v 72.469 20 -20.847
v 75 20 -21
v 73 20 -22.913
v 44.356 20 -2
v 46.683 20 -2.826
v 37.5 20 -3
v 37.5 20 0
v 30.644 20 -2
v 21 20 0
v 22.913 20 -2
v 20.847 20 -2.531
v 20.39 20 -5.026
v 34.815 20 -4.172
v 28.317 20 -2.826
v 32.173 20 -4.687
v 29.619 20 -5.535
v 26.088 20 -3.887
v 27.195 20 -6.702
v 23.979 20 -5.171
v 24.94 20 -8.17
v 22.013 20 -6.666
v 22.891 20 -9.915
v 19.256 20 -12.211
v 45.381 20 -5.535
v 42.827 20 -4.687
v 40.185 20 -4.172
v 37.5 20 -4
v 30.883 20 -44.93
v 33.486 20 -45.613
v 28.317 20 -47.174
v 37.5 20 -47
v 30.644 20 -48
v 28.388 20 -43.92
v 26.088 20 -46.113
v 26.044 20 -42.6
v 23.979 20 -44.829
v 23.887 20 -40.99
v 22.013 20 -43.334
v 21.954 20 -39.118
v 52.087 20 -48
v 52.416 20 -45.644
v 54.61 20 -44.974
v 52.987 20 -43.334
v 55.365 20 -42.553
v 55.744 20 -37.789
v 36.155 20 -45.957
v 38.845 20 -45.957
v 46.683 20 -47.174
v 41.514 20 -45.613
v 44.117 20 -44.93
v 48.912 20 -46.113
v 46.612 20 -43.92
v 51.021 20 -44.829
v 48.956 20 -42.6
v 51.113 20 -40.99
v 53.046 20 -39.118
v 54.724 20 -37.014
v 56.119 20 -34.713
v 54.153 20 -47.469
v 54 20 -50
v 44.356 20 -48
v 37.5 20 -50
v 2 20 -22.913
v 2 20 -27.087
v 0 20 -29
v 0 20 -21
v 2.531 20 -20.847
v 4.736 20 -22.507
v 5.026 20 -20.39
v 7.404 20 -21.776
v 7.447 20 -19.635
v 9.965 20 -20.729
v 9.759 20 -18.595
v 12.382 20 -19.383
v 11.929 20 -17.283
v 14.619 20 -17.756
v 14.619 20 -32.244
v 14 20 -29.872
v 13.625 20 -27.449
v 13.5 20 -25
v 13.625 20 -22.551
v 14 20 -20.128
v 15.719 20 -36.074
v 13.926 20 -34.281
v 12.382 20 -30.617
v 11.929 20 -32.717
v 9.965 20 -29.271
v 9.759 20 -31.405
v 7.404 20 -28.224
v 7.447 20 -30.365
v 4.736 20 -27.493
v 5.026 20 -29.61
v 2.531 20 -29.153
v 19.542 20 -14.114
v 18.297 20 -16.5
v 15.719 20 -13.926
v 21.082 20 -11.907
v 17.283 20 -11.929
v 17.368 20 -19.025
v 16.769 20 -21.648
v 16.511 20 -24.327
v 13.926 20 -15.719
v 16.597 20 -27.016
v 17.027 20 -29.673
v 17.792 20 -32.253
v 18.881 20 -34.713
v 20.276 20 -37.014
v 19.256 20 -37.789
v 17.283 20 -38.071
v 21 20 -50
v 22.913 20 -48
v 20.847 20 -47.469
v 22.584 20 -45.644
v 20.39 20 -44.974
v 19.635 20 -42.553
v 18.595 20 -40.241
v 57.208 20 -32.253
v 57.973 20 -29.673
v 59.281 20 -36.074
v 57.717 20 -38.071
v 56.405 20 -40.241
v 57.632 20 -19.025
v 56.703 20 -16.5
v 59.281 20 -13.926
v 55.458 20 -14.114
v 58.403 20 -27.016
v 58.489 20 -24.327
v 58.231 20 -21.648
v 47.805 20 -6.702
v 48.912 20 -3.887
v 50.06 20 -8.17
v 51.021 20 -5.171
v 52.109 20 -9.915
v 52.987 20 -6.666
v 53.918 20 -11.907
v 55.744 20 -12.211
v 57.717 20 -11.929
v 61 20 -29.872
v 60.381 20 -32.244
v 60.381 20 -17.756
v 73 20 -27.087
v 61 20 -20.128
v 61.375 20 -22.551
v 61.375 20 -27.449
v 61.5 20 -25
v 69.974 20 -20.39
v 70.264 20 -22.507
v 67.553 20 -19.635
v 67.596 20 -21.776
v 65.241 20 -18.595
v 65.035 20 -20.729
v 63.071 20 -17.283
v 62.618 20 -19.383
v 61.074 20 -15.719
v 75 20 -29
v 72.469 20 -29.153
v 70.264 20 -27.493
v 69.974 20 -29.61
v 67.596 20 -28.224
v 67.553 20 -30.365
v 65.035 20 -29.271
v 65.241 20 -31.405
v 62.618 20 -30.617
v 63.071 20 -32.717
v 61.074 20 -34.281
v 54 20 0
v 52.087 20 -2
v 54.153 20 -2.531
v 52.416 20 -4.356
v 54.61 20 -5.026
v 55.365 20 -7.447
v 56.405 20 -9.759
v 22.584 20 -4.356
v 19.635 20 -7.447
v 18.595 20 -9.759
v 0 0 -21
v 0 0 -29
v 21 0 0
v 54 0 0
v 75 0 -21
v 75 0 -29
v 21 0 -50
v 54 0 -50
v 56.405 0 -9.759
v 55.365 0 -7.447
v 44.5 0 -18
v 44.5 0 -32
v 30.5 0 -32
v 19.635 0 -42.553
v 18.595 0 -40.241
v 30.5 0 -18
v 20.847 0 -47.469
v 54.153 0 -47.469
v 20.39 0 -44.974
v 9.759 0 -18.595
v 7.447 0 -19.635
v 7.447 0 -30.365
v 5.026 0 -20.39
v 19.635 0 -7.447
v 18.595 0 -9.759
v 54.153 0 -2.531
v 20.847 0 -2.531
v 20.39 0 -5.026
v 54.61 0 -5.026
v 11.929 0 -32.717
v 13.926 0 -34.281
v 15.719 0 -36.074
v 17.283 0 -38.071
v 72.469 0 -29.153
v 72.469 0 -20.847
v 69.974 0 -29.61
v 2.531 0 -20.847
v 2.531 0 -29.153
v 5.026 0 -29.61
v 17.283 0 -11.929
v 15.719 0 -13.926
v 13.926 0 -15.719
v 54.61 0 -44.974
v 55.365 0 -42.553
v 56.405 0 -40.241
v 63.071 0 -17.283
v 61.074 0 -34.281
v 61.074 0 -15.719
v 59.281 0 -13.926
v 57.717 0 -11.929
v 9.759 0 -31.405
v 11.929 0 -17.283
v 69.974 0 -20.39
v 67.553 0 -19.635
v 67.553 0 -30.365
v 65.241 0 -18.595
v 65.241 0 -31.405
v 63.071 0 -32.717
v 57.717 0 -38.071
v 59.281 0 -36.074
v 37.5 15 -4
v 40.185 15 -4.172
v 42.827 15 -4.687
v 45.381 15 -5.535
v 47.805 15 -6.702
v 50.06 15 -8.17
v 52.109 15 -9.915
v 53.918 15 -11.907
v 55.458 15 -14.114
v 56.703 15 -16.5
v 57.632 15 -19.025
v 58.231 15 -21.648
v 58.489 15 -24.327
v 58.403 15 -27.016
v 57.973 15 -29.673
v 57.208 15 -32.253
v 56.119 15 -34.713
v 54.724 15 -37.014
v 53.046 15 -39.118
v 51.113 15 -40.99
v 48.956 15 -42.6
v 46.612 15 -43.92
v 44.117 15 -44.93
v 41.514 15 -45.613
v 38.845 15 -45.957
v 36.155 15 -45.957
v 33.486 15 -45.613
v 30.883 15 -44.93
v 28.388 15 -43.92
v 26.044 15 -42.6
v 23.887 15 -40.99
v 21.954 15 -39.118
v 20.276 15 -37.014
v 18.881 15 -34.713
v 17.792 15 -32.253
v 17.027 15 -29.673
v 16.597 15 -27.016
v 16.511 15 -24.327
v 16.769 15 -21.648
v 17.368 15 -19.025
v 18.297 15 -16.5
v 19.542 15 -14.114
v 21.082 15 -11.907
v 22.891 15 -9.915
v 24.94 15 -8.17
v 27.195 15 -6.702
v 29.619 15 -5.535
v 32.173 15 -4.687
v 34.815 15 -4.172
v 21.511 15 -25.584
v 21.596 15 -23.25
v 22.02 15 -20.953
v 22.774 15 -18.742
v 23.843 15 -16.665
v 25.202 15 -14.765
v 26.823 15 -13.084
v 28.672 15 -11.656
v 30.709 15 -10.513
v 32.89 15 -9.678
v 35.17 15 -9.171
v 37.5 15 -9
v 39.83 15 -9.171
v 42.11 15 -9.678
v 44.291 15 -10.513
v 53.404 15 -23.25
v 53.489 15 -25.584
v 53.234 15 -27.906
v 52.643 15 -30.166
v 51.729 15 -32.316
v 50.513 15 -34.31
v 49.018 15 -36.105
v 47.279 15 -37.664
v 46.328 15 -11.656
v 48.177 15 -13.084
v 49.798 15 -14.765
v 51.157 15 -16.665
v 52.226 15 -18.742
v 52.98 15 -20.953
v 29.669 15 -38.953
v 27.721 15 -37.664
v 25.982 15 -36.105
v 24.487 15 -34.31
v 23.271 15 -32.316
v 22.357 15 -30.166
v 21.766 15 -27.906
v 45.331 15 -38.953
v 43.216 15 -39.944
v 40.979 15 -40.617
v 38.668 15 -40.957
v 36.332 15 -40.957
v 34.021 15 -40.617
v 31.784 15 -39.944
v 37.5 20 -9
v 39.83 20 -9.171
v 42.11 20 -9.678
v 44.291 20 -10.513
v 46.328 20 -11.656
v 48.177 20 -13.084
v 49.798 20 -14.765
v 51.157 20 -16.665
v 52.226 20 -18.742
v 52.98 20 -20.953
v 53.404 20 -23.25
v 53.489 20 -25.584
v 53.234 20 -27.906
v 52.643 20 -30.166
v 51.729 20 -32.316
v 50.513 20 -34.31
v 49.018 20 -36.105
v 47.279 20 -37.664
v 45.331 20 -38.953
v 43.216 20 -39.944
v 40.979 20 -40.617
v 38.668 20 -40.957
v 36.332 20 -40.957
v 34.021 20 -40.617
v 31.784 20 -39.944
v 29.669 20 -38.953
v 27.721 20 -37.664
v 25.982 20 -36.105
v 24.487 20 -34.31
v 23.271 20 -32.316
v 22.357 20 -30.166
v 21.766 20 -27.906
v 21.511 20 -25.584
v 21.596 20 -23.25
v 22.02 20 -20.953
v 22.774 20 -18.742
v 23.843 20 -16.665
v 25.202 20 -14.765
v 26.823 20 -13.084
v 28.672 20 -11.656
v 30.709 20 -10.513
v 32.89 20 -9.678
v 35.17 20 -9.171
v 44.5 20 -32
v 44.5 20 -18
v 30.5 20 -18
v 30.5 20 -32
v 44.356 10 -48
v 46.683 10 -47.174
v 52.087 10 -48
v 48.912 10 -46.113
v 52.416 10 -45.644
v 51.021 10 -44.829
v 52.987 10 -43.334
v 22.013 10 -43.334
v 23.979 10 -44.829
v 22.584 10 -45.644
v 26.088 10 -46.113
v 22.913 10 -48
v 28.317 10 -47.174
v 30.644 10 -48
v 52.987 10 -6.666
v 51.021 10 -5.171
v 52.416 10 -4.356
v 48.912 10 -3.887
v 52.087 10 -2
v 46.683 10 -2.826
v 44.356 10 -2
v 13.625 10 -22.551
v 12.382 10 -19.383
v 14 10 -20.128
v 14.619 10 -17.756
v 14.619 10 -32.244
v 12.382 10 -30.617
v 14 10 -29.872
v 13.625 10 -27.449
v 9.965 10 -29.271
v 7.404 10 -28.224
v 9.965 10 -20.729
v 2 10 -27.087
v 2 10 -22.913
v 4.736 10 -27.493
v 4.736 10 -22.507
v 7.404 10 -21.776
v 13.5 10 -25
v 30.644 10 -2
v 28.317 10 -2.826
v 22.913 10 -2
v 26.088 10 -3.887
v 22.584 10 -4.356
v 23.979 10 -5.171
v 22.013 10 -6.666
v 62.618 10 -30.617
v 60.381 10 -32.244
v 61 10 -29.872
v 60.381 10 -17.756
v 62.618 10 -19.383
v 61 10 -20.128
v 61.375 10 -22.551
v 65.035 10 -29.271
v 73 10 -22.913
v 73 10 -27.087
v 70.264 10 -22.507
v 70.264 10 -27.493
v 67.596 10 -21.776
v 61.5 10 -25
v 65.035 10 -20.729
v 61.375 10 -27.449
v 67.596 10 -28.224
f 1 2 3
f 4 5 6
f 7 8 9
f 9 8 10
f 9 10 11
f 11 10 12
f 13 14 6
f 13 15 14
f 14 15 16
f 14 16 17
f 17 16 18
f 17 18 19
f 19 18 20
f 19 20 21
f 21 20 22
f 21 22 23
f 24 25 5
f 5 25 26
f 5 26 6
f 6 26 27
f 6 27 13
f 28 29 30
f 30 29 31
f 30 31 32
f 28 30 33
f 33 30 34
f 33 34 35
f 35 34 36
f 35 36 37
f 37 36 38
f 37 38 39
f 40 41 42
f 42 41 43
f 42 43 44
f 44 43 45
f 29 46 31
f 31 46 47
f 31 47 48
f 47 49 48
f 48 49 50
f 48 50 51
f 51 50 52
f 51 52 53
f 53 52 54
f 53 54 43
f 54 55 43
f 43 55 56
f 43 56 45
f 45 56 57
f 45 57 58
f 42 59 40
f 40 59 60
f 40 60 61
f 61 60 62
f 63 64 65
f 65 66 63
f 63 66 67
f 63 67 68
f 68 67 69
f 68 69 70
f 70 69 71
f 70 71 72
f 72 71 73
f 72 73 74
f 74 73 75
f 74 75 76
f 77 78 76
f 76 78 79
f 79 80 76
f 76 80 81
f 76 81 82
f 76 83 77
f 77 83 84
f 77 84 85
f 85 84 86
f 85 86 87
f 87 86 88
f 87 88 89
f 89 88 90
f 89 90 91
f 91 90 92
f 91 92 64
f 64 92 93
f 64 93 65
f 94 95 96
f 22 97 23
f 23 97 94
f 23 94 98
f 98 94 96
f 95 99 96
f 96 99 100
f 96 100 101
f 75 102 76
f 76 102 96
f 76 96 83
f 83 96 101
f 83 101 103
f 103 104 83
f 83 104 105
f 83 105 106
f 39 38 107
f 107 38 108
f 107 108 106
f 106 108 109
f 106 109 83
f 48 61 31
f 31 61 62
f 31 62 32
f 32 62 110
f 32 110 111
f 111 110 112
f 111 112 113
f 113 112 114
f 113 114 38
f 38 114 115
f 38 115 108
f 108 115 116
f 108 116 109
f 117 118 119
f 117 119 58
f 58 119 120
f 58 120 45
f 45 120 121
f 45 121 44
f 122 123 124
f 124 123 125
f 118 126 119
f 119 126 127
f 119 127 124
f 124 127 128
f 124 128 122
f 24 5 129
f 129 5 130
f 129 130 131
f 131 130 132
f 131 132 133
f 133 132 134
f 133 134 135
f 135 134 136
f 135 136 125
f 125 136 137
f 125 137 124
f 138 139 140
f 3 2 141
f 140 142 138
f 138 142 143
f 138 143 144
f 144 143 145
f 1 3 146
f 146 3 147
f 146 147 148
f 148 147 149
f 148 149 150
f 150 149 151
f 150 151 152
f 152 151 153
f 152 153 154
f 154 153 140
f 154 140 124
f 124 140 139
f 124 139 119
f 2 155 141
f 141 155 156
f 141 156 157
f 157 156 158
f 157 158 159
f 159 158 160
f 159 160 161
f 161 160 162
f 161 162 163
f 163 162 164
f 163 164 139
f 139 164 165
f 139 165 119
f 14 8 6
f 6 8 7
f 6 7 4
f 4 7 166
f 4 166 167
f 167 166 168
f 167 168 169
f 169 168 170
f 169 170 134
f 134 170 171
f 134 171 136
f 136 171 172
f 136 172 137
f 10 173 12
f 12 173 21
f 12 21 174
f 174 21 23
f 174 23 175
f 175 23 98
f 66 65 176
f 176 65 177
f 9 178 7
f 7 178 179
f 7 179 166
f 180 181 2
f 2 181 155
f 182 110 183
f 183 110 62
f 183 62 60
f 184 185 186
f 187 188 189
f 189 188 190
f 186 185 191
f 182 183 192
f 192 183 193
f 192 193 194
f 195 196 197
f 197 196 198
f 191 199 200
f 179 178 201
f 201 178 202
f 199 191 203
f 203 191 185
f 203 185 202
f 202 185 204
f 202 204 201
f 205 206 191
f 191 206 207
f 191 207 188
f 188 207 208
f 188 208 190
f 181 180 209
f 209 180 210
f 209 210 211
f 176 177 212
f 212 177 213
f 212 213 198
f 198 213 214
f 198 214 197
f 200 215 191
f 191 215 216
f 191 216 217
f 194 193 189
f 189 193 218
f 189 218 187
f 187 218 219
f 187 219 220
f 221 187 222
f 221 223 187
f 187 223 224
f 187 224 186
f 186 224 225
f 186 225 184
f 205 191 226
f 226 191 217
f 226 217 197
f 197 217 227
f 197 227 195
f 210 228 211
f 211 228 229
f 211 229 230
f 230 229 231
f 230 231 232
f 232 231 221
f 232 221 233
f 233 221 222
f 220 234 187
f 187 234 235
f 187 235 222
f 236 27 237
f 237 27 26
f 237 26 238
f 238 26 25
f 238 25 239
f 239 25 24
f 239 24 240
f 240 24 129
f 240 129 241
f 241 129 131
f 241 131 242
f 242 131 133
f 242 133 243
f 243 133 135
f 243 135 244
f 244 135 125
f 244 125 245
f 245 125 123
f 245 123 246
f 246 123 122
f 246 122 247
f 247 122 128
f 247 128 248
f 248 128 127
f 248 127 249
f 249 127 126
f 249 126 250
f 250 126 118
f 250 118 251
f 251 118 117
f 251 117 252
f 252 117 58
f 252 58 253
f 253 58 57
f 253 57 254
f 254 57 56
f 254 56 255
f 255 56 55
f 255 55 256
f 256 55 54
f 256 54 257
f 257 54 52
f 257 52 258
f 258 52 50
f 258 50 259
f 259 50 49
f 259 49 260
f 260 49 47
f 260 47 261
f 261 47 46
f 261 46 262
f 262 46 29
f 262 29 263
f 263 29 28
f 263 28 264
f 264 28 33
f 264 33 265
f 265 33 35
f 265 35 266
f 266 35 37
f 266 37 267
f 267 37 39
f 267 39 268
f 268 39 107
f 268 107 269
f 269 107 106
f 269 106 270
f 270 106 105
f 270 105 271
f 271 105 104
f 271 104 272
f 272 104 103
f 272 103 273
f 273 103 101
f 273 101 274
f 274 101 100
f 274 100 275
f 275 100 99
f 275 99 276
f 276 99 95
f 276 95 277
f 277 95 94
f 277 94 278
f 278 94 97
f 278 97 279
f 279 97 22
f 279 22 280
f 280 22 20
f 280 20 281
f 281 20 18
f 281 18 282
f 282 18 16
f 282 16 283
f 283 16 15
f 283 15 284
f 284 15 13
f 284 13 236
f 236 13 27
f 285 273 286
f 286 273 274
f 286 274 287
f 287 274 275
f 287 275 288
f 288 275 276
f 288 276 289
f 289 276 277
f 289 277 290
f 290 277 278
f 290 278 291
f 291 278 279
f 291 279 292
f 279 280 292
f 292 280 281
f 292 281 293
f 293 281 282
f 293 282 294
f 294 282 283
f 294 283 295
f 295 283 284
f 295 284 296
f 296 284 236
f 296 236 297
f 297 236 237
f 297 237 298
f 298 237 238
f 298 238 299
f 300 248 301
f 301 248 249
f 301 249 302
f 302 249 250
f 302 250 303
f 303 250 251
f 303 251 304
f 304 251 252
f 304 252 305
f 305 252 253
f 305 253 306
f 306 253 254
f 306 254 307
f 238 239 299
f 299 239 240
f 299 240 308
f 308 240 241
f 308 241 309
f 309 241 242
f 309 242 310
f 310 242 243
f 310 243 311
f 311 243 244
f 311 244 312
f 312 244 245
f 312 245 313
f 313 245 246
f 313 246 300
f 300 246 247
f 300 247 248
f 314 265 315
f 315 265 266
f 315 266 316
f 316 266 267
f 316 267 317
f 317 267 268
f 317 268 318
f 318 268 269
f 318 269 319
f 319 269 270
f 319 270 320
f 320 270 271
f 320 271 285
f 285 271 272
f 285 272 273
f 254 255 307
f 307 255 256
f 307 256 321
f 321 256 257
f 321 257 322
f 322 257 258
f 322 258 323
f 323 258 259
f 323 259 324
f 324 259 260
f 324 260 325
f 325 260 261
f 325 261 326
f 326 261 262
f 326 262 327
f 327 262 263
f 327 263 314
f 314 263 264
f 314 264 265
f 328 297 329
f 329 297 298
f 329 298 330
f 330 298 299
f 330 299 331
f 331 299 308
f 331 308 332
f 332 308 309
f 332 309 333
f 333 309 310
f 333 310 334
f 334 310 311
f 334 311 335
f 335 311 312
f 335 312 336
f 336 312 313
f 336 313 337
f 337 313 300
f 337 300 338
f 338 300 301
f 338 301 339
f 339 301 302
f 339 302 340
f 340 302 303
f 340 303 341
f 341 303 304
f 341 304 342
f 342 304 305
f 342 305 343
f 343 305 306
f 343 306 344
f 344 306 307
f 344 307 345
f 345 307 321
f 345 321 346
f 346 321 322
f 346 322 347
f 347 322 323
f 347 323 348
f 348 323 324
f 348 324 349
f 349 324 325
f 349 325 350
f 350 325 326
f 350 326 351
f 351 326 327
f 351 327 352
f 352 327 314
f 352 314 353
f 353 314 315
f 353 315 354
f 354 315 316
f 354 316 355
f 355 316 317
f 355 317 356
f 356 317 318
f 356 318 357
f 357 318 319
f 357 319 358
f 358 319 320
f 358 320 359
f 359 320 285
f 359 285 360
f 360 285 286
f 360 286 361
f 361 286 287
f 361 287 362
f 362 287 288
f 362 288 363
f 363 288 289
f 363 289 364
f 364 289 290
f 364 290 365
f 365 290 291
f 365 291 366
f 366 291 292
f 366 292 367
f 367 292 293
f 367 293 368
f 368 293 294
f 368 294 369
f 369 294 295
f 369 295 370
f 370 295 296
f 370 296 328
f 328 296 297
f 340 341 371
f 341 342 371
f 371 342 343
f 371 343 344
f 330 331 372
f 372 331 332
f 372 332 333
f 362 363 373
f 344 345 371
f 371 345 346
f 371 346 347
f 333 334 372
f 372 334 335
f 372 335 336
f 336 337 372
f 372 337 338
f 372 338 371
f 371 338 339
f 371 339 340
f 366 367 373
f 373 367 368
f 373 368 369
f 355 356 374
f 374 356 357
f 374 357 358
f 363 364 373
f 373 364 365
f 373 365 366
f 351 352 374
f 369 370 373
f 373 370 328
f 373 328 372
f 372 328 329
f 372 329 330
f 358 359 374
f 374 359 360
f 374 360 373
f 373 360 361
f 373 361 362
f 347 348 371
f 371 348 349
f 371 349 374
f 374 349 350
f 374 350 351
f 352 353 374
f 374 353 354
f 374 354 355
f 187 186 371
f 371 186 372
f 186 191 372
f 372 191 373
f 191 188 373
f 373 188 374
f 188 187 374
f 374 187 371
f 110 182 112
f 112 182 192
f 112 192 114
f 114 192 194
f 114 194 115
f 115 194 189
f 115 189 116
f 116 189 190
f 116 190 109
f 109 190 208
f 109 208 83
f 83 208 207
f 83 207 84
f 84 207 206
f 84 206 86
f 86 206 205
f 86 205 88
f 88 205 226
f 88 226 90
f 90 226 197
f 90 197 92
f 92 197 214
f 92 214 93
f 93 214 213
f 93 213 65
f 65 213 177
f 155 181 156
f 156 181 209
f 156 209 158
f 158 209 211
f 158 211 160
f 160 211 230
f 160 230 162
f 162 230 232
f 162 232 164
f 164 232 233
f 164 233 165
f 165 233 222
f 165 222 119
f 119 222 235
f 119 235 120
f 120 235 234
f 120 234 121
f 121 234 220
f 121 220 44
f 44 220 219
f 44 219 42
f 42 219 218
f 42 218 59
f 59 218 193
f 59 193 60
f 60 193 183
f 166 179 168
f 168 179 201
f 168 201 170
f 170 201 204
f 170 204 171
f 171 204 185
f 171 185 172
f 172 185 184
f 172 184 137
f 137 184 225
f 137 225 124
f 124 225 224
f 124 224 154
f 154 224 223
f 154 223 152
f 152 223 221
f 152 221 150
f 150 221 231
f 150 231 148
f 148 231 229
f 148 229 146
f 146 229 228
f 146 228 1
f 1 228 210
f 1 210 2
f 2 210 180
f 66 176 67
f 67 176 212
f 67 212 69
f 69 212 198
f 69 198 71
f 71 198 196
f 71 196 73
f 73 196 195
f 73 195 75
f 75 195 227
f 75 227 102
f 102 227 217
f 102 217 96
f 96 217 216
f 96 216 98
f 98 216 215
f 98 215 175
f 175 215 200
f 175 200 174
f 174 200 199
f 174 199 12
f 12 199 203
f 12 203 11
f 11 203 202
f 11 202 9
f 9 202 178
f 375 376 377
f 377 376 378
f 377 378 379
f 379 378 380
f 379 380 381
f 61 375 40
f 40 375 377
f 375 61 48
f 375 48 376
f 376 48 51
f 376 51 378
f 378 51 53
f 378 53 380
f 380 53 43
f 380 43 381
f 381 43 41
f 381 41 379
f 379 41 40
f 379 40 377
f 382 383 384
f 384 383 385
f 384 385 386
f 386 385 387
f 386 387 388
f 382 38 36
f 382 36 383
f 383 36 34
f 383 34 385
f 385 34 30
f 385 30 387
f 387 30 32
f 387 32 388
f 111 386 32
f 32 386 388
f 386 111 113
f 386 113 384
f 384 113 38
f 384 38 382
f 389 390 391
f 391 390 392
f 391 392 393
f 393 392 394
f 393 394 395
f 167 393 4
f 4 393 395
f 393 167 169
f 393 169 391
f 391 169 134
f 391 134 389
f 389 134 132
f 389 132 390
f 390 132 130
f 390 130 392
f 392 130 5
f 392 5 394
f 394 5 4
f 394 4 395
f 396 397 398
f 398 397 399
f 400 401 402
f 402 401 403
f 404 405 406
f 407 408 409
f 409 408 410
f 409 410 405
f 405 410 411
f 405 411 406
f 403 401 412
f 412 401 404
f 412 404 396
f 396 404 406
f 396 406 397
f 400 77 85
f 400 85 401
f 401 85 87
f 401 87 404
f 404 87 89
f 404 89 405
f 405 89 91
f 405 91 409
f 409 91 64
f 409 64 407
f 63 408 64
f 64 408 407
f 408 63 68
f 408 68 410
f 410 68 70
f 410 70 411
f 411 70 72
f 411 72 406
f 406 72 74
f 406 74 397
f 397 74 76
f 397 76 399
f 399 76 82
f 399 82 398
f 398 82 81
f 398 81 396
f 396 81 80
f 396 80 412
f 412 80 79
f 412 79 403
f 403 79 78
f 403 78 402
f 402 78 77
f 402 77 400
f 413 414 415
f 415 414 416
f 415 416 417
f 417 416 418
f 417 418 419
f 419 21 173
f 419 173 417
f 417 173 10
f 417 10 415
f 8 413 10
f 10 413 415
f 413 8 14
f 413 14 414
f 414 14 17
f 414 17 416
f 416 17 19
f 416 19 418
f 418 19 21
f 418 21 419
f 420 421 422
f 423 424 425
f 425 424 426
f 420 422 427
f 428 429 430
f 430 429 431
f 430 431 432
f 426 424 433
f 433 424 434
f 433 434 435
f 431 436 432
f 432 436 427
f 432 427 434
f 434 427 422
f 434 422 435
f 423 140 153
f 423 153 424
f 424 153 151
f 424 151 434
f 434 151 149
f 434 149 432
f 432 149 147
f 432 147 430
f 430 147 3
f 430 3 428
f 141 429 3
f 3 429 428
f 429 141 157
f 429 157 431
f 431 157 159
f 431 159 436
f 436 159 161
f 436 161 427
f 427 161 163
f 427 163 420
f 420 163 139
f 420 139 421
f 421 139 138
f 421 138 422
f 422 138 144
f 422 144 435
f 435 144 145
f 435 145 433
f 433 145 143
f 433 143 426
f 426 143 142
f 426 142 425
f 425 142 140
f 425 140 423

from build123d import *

# Parameters (mm, degrees)
SKETCH1_W           = 75
SKETCH1_H           = 50
BOSS_EXTRUDE1_DEPTH = 20
SKETCH2_R           = 21
SKETCH2_R_2         = 16
CUT_EXTRUDE1_DEPTH  = 5
SKETCH3_W           = 14
SKETCH3_H           = 14
CUT_EXTRUDE2_DEPTH  = 21
CUT_EXTRUDE3_DEPTH  = 21
CUT_EXTRUDE6_DEPTH  = 10


with BuildPart() as part:
    # Sketch1 → Boss-Extrude1 (new body)
    with BuildSketch(Plane(origin=(0, 0, 0), x_dir=(1, 0, 0), z_dir=(0, 1, 0))):
        with Locations((37.5, 25)):
            Rectangle(SKETCH1_W, SKETCH1_H)
    extrude(amount=BOSS_EXTRUDE1_DEPTH)

    # Sketch2 → Cut-Extrude1 (cut)
    with BuildSketch(Plane(origin=(0, 20, 0), x_dir=(1, 0, 0), z_dir=(0, 1, 0))):
        with Locations((37.5, 25)):
            Circle(SKETCH2_R)
        with Locations((37.5, 25)):
            Circle(SKETCH2_R_2, mode=Mode.SUBTRACT)
    extrude(amount=-CUT_EXTRUDE1_DEPTH, mode=Mode.SUBTRACT)

    # Sketch3 → Cut-Extrude2 (cut, through all)
    with BuildSketch(Plane(origin=(0, 20, 0), x_dir=(1, 0, 0), z_dir=(0, 1, 0))):
        with Locations((37.5, 25)):
            Rectangle(SKETCH3_W, SKETCH3_H)
    extrude(amount=-CUT_EXTRUDE2_DEPTH, mode=Mode.SUBTRACT)

    # Sketch4 → Cut-Extrude3 (cut, through all)
    with BuildSketch(Plane.XZ):
        with BuildLine():
            Line((0, -29), (0, -50))
            Line((0, -50), (21, -50))
            ThreePointArc((21, -50), (14.849242405, -35.150757595), (0, -29))
        make_face()
        with BuildLine():
            Line((75, -29), (75, -50))
            Line((75, -50), (54, -50))
            ThreePointArc((54, -50), (60.150757595, -35.150757595), (75, -29))
        make_face()
        with BuildLine():
            Line((75, -21), (75, 0))
            Line((75, 0), (54, 0))
            ThreePointArc((54, 0), (60.150757595, -14.849242405), (75, -21))
        make_face()
        with BuildLine():
            Line((0, 0), (21, 0))
            ThreePointArc((21, 0), (14.849242405, -14.849242405), (0, -21))
            Line((0, -21), (0, 0))
        make_face()
    extrude(amount=-CUT_EXTRUDE3_DEPTH, mode=Mode.SUBTRACT)

    # Sketch6 → Cut-Extrude6 (cut)
    with BuildSketch(Plane(origin=(0, 20, 0), x_dir=(1, 0, 0), z_dir=(0, 1, 0))):
        with BuildLine():
            Line((30.6443454, 48), (22.912878475, 48))
            ThreePointArc((22.912878475, 48), (22.583722585, 45.643915266), (22.012955919, 43.334433878))
            ThreePointArc((22.012955919, 43.334433878), (26.087685471, 46.113007296), (30.6443454, 48))
        make_face()
        with BuildLine():
            Line((44.3556546, 2), (52.087121525, 2))
            ThreePointArc((52.087121525, 2), (52.416277415, 4.356084734), (52.987044081, 6.665566122))
            ThreePointArc((52.987044081, 6.665566122), (48.912314529, 3.886992704), (44.3556546, 2))
        make_face()
        with BuildLine():
            Line((2, 27.087121525), (2, 22.912878475))
            ThreePointArc((2, 22.912878475), (8.700524902, 21.29086345), (14.619351774, 17.755972339))
            ThreePointArc((14.619351774, 17.755972339), (13.5, 25), (14.619351774, 32.244027661))
            ThreePointArc((14.619351774, 32.244027661), (8.700524902, 28.70913655), (2, 27.087121525))
        make_face()
        with BuildLine():
            Line((22.912878475, 2), (30.6443454, 2))
            ThreePointArc((30.6443454, 2), (26.087685471, 3.886992704), (22.012955919, 6.665566122))
            ThreePointArc((22.012955919, 6.665566122), (22.583722585, 4.356084734), (22.912878475, 2))
        make_face()
        with BuildLine():
            Line((73, 22.912878475), (73, 27.087121525))
            ThreePointArc((73, 27.087121525), (66.299475098, 28.70913655), (60.380648226, 32.244027661))
            ThreePointArc((60.380648226, 32.244027661), (61.5, 25), (60.380648226, 17.755972339))
            ThreePointArc((60.380648226, 17.755972339), (66.299475098, 21.29086345), (73, 22.912878475))
        make_face()
        with BuildLine():
            Line((52.087121525, 48), (44.3556546, 48))
            ThreePointArc((44.3556546, 48), (48.912314529, 46.113007296), (52.987044081, 43.334433878))
            ThreePointArc((52.987044081, 43.334433878), (52.416277415, 45.643915266), (52.087121525, 48))
        make_face()
    extrude(amount=-CUT_EXTRUDE6_DEPTH, mode=Mode.SUBTRACT)


solid = part.part
